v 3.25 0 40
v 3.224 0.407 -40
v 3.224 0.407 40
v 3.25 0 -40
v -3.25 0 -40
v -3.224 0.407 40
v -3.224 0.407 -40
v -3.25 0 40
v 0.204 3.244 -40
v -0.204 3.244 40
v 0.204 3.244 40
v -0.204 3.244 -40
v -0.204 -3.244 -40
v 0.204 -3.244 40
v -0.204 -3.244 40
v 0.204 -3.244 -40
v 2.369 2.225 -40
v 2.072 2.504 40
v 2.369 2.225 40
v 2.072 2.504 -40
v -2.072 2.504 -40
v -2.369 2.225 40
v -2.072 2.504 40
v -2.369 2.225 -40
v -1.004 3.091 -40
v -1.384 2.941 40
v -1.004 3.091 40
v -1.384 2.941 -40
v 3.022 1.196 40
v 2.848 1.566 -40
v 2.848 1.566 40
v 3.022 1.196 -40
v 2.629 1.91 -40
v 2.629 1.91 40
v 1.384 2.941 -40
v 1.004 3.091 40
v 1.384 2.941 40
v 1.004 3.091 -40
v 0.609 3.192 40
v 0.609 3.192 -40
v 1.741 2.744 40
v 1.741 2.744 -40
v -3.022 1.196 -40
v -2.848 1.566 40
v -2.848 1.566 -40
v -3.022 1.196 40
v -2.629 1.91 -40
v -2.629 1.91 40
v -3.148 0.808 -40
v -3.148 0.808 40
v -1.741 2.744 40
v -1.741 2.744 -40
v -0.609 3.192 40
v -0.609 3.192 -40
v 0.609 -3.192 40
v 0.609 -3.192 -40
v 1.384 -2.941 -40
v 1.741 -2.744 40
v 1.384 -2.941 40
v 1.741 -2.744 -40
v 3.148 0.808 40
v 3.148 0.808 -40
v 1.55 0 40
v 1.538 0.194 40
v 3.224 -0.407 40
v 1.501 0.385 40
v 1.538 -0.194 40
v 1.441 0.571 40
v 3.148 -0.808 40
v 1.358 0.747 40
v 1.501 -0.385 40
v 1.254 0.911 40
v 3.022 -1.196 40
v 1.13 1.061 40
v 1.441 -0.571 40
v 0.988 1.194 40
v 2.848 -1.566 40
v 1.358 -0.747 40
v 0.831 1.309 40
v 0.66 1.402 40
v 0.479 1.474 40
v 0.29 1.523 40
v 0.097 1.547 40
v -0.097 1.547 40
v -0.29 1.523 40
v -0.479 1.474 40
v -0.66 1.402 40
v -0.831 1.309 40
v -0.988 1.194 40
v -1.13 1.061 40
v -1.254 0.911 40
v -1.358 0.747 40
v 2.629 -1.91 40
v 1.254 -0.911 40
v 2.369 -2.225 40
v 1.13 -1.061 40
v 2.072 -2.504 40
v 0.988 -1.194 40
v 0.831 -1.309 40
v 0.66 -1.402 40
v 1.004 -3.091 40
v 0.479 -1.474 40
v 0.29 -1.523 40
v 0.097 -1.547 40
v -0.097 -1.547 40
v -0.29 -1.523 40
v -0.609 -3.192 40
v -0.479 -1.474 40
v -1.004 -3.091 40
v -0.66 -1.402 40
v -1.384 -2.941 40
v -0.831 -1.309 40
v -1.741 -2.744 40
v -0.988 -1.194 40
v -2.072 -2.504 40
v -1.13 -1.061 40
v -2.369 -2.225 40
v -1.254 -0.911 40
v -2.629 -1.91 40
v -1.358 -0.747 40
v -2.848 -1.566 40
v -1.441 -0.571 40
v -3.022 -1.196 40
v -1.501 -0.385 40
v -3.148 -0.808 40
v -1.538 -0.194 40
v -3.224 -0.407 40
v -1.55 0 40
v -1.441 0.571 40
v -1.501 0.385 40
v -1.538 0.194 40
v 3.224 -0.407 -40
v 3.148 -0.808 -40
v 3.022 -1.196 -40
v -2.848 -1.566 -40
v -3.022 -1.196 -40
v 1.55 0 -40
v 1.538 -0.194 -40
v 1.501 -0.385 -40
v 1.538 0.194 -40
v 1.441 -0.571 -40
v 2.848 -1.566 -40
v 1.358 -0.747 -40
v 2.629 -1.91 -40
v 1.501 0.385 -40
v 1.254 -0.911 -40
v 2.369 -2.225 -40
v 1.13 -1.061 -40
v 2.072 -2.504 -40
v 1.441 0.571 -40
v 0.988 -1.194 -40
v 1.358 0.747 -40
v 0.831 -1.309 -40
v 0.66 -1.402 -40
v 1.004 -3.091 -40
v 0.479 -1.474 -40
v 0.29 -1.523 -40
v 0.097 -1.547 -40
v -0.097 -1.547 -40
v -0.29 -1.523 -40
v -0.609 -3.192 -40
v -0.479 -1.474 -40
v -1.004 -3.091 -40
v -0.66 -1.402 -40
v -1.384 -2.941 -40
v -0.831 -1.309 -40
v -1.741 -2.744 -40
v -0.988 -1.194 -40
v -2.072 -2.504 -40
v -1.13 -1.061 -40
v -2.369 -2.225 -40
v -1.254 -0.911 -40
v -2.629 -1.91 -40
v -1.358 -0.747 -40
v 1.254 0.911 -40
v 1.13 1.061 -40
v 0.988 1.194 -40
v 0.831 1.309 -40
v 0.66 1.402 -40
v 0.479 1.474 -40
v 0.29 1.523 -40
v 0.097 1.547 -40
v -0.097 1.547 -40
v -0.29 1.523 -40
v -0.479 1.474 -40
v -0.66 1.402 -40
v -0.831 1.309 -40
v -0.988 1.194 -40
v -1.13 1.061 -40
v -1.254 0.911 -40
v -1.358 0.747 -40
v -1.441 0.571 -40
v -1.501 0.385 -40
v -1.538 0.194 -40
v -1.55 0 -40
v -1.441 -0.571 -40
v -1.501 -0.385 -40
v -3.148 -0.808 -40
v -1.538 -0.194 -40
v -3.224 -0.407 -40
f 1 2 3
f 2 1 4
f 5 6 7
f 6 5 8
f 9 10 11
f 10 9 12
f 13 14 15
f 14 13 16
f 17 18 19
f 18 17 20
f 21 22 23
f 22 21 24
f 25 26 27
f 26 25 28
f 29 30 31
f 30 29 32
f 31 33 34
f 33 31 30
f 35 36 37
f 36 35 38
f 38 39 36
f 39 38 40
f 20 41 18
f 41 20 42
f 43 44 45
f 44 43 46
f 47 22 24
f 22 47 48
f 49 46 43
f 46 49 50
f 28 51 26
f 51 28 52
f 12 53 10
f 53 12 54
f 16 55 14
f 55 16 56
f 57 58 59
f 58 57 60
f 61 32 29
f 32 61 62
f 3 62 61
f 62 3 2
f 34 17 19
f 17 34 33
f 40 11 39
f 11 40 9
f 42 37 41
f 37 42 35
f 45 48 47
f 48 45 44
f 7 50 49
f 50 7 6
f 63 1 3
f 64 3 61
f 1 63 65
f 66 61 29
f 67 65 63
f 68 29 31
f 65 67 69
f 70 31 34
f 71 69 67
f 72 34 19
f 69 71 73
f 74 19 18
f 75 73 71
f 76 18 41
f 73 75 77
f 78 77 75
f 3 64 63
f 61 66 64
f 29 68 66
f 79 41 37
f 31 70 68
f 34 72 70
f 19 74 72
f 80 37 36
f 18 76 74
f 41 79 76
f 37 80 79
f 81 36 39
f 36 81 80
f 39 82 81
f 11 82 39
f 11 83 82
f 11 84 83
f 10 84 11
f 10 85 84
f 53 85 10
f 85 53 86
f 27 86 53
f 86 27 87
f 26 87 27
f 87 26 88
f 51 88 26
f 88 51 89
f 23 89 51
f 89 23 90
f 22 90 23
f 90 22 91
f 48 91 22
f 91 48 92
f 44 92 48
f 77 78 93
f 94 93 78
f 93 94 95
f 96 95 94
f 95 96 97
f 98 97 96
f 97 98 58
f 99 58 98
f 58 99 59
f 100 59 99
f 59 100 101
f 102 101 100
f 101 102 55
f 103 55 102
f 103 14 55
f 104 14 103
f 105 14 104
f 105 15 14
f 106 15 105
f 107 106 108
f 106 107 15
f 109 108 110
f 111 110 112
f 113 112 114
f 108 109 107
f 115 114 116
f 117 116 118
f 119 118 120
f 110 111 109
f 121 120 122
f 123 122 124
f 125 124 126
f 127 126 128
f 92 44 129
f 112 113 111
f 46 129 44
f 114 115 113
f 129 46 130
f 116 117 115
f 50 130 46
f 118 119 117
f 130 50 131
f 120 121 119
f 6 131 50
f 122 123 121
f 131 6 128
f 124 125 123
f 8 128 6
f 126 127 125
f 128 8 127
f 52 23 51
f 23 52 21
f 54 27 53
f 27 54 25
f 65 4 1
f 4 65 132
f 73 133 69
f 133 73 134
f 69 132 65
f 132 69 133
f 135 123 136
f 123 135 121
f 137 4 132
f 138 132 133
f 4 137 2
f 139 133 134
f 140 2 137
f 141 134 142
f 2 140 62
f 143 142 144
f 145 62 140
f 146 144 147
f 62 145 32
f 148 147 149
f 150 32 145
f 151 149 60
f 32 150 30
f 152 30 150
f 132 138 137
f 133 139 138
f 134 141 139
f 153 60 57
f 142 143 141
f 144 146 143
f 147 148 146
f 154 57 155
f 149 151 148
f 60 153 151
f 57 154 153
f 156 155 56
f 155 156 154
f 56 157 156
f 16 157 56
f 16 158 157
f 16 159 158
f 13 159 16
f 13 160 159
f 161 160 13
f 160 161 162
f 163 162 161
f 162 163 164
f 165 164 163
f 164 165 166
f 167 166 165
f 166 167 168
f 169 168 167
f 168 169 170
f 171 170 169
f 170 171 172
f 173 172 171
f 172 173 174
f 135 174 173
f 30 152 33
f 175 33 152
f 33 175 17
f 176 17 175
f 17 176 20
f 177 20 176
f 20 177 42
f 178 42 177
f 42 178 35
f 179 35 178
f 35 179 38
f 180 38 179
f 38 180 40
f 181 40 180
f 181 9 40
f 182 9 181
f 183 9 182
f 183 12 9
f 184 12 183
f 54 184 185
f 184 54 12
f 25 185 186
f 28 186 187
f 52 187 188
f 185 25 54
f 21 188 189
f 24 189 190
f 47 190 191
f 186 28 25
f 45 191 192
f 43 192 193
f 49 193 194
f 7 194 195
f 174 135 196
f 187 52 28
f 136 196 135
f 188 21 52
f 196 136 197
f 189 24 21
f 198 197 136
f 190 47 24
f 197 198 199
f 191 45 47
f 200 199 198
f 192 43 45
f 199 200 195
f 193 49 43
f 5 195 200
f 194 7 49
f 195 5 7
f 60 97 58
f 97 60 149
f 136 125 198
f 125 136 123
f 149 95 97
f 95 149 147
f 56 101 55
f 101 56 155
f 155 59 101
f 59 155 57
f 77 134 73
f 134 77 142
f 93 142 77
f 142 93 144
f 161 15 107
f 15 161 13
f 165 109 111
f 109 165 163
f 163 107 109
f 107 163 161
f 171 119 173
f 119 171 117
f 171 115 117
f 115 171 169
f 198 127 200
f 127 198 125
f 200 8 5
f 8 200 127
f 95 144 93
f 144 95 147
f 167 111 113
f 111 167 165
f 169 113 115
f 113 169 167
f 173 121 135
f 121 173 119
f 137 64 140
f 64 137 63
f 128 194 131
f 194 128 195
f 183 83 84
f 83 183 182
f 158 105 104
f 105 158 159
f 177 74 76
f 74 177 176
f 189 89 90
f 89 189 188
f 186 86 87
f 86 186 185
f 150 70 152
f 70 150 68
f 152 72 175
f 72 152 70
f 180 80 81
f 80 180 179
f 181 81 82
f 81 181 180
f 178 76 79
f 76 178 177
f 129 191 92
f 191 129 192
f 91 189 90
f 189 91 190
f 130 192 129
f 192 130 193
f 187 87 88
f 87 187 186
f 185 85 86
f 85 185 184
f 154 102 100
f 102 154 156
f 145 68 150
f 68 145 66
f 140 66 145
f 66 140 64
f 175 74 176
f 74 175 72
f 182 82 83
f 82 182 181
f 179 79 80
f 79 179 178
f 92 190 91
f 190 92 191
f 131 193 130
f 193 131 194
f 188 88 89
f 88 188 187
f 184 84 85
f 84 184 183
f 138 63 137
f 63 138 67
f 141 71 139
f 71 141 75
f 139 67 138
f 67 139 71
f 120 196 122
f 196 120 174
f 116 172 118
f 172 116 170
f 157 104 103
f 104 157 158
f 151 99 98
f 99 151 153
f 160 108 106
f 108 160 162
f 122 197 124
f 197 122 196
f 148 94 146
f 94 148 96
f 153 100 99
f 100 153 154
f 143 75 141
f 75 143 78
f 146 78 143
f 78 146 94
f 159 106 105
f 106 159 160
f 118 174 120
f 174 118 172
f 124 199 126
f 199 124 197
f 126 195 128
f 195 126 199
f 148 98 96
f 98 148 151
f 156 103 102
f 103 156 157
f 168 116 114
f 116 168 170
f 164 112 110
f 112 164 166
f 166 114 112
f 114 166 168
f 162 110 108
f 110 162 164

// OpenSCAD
$fn = 50;


difference() {
	union() {
		translate(v = [0, 0, -40.0000000000]) {
			cylinder(h = 80, r = 3.2500000000);
		}
	}
	union() {
		translate(v = [0, 0, -100.0000000000]) {
			cylinder(h = 200, r = 1.5500000000);
		}
	}
}
